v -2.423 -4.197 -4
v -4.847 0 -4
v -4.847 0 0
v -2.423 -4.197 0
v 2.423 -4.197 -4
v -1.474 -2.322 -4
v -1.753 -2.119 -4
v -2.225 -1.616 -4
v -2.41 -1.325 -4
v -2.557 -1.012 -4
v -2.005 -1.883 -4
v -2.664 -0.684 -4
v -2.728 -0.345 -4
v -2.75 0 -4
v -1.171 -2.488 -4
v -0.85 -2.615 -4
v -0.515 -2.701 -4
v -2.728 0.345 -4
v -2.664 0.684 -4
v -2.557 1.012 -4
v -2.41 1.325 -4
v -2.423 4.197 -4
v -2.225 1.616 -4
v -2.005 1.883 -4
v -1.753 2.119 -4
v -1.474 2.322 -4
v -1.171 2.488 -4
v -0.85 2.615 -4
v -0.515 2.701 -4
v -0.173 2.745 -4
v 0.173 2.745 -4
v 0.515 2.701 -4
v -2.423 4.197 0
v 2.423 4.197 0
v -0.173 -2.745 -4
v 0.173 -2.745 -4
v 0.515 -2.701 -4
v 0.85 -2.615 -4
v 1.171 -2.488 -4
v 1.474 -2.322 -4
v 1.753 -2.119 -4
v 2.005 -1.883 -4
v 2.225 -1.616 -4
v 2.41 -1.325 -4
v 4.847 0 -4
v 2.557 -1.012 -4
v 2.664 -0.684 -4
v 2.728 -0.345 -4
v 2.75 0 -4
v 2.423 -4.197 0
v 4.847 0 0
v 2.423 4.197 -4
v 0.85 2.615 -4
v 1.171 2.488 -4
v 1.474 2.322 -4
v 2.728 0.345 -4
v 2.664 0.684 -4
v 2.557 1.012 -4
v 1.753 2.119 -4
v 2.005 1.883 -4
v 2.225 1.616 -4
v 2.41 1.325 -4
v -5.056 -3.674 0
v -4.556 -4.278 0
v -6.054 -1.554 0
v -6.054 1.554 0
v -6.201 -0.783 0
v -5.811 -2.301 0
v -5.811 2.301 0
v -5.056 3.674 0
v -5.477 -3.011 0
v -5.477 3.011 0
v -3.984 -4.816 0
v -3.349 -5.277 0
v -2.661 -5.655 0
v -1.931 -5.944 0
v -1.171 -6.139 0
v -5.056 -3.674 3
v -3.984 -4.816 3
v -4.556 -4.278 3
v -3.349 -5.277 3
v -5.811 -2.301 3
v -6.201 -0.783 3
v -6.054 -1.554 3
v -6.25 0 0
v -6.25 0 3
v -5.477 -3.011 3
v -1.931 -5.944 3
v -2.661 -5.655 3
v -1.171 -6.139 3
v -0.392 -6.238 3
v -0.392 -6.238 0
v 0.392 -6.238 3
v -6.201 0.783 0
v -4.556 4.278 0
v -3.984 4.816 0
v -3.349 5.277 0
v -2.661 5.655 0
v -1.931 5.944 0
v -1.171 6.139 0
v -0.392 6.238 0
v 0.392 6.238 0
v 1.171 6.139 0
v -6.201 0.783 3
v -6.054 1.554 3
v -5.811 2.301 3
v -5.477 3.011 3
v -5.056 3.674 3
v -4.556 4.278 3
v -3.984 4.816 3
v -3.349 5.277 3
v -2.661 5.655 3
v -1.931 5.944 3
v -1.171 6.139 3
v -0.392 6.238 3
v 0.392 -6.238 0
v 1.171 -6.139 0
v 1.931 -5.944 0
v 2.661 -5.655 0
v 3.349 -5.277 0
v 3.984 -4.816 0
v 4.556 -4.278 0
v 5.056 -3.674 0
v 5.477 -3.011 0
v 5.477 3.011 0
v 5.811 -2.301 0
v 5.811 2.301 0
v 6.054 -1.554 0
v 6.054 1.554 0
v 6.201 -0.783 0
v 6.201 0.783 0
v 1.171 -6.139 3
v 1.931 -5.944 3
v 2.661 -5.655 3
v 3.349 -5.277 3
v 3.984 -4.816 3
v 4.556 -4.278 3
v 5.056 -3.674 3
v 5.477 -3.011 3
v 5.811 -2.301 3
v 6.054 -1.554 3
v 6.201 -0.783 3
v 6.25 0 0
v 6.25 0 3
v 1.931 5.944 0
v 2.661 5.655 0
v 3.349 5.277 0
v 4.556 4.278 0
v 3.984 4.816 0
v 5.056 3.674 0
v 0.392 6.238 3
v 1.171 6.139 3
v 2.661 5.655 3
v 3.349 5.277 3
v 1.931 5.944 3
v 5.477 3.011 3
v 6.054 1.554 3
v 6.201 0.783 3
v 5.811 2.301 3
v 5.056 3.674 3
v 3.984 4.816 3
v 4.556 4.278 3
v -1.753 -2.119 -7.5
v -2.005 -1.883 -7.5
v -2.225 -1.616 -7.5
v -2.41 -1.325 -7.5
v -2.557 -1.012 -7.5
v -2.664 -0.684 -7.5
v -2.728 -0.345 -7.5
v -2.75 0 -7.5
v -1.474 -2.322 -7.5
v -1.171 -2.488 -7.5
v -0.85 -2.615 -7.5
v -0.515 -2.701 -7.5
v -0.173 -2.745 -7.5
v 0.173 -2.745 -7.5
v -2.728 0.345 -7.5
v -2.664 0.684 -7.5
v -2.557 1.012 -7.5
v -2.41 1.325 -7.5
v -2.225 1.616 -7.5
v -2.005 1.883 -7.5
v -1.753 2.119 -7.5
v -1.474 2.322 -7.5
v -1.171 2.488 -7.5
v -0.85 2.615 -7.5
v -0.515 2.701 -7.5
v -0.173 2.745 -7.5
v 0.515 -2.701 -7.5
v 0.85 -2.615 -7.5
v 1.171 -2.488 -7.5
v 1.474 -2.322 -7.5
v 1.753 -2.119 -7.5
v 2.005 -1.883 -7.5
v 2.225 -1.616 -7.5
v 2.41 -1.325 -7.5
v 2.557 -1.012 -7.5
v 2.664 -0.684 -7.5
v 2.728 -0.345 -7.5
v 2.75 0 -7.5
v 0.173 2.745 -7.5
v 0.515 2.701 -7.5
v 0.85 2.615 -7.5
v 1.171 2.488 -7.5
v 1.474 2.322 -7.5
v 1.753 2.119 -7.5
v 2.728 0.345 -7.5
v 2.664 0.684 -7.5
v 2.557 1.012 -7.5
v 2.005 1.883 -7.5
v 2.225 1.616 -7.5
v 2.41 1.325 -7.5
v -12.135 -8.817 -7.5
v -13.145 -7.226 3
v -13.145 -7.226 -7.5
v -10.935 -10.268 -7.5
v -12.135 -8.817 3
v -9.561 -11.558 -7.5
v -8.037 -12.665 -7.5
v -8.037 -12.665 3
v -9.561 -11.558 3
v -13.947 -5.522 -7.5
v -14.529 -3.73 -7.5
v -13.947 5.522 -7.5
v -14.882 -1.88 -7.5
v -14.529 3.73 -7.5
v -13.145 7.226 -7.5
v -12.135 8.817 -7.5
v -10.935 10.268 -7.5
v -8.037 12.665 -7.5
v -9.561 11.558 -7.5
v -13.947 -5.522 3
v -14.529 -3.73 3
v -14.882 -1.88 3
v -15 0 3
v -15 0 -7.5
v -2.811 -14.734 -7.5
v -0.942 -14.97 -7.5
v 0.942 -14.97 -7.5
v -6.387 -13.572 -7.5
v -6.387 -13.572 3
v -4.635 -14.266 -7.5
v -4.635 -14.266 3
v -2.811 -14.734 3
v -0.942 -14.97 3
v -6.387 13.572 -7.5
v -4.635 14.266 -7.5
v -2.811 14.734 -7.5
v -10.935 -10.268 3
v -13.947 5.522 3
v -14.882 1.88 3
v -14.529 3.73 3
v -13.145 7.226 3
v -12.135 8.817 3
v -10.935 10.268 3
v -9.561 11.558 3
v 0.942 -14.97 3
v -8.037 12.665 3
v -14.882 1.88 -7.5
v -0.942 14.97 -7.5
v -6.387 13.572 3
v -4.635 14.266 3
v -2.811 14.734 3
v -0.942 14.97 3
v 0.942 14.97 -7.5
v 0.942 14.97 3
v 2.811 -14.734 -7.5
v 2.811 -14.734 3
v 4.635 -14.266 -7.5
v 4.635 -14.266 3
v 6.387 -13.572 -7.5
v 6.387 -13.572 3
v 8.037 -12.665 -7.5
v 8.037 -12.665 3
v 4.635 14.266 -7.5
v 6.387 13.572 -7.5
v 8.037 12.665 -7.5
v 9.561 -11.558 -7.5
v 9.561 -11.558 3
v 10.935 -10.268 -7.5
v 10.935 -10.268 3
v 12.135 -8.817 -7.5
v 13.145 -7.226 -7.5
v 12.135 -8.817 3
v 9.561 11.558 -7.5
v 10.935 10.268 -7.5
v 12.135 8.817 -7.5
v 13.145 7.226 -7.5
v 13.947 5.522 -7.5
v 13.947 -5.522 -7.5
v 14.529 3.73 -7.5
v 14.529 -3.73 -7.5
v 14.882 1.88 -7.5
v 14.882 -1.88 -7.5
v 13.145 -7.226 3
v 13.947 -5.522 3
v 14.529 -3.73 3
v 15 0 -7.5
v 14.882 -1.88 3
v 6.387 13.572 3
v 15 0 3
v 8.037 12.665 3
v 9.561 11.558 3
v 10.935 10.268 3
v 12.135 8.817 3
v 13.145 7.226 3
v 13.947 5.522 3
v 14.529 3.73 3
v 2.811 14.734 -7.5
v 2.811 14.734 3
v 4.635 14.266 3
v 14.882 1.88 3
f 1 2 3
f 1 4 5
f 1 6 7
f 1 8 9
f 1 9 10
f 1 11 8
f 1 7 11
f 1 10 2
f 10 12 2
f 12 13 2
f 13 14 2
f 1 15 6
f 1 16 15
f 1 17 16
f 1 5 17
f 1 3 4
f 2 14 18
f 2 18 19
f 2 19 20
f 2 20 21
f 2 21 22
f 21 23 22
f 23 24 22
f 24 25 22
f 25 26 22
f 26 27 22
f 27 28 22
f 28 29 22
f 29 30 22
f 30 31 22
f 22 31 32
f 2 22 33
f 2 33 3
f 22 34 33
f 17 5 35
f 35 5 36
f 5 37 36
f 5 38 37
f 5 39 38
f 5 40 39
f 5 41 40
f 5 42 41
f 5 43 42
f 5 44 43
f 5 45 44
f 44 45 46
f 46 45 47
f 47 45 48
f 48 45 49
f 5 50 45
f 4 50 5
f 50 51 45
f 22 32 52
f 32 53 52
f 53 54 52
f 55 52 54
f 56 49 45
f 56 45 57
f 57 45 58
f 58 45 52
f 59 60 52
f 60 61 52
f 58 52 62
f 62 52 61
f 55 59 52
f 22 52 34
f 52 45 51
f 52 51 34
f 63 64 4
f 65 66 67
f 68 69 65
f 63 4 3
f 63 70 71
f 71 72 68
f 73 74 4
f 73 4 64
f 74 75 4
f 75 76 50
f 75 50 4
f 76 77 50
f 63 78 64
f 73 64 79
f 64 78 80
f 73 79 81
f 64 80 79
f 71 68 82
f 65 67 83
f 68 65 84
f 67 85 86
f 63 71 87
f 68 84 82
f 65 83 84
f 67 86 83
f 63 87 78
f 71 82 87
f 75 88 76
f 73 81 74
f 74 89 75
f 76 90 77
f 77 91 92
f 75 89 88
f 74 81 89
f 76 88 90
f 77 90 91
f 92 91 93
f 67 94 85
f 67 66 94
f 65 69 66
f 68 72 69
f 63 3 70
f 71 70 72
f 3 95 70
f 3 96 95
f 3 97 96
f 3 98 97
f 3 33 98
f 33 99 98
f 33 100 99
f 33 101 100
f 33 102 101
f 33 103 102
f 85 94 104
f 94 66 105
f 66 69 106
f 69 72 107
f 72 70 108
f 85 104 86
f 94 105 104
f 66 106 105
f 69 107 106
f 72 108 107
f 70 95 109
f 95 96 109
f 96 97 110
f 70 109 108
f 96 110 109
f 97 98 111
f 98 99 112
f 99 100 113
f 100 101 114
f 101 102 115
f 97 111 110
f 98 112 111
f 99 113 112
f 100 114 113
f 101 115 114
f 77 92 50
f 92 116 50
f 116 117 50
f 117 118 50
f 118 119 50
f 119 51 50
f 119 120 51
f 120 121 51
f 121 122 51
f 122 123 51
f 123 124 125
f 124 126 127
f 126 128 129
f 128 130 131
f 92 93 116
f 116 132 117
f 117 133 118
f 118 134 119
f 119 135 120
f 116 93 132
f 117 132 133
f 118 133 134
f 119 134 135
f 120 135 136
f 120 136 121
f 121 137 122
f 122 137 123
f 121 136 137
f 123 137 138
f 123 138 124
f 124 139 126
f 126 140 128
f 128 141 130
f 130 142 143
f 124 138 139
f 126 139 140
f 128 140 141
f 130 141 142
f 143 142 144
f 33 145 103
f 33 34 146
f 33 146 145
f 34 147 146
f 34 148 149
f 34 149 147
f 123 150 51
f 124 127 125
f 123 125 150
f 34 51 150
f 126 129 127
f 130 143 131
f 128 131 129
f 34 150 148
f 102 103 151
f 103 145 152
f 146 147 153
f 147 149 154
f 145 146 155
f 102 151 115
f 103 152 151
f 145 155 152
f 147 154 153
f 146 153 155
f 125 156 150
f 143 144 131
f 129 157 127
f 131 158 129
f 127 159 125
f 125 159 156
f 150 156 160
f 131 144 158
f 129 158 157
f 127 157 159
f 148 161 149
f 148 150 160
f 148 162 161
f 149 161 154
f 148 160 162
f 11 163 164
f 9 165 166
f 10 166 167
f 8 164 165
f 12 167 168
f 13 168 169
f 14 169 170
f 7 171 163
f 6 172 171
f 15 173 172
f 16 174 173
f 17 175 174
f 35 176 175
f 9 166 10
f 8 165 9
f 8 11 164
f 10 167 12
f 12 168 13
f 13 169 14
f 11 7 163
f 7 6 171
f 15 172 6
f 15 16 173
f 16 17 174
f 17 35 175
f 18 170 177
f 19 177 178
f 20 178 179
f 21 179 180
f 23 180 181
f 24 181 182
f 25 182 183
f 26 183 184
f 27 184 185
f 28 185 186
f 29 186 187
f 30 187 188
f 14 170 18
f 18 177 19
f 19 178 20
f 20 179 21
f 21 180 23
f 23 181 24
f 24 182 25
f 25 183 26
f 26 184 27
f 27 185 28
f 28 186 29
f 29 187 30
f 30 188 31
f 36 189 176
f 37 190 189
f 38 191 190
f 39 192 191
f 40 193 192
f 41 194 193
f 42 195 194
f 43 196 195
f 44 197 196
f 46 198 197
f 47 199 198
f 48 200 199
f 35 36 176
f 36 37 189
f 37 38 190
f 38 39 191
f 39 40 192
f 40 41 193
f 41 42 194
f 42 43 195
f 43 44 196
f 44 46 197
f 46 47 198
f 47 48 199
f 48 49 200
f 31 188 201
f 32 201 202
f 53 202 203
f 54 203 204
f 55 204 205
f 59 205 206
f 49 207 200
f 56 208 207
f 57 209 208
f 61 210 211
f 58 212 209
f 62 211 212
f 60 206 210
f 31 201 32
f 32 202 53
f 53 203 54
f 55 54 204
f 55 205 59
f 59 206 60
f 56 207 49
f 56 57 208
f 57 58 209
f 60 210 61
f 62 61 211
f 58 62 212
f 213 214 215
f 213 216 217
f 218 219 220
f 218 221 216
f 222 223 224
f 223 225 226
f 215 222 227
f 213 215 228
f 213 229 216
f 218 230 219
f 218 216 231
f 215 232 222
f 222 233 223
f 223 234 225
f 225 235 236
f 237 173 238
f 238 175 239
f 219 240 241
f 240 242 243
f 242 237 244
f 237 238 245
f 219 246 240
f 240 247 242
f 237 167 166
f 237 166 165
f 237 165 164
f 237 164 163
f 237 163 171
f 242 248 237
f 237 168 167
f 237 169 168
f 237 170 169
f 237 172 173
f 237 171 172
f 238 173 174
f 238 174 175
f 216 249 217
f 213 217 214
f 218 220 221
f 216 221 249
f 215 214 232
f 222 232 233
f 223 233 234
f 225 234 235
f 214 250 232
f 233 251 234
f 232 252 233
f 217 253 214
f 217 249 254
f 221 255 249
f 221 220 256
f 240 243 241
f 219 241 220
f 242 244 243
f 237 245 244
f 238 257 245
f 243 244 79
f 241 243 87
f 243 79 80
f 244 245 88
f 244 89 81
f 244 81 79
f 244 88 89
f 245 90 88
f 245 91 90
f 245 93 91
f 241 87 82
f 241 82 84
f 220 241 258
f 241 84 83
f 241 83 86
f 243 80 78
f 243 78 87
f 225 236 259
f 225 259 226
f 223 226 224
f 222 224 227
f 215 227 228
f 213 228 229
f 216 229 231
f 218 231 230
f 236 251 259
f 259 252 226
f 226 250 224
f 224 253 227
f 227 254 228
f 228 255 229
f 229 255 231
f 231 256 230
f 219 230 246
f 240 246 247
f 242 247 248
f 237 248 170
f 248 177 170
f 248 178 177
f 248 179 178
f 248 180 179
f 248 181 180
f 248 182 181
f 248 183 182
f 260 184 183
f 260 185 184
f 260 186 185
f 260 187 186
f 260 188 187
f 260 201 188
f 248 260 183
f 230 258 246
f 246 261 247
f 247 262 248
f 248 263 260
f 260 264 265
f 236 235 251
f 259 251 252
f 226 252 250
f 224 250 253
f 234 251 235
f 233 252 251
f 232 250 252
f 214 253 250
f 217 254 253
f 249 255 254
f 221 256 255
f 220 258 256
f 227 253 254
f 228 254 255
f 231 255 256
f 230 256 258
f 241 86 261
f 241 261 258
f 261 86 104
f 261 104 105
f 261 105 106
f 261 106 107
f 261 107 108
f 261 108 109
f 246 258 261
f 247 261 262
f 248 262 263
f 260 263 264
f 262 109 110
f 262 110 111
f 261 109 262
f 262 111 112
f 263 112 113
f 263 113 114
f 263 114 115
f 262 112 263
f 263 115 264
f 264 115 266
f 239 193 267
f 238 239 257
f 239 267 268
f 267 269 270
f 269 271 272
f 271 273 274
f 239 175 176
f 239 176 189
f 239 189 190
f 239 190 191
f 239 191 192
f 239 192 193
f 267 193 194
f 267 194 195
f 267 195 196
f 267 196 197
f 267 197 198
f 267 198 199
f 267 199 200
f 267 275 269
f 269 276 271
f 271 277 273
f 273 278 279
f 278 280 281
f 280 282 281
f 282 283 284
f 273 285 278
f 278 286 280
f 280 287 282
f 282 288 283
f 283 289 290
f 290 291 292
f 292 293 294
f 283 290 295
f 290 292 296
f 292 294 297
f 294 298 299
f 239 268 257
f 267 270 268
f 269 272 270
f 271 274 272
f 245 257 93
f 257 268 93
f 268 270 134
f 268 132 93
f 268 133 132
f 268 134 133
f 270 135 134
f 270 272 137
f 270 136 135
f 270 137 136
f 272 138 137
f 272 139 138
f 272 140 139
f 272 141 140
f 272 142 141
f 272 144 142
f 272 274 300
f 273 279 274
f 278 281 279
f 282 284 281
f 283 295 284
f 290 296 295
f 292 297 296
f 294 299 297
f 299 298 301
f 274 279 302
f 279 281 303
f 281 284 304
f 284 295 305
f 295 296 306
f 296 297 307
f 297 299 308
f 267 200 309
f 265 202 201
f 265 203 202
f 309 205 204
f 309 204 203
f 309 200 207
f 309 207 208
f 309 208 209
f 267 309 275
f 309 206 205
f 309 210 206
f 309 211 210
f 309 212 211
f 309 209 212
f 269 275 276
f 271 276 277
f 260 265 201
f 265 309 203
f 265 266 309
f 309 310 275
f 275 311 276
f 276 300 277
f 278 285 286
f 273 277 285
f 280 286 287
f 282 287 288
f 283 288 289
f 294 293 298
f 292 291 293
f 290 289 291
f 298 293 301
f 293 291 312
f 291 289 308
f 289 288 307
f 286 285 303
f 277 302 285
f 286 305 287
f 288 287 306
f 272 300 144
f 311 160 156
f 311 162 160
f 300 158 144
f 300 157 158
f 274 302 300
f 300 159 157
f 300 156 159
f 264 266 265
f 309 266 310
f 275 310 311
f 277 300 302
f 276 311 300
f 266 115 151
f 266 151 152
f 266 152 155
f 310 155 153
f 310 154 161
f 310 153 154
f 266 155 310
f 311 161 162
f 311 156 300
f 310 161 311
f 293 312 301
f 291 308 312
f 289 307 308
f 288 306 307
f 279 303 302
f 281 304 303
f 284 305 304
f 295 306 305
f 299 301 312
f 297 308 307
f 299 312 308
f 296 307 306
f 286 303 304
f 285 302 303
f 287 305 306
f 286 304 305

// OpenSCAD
$fn = 50;

difference() {
	union() {
		translate(v = [0, 0, -7.5]) {
			cylinder(h = 10.5, r = 15.0);
		}
	}
	union() {
		translate(v = [0, 0, 0]) {
			rotate(a = [0, 0, 0]) {
				difference() {
					union() {
						translate(v = [0, 0, -4]) {
							linear_extrude(height = 4) {
								polygon(points = [[4.8468, 0.0], [2.4234000000000004, 4.197451927062417], [-2.423399999999999, 4.197451927062417], [-4.8468, 5.935618106107392e-16], [-2.423400000000002, -4.197451927062416], [2.423399999999997, -4.197451927062419]]);
							}
						}
					}
					union();
				}
			}
		}
		#cylinder(h = 3, r = 6.25);
		#translate(v = [0, 0, -100.0]) {
			cylinder(h = 200, r = 2.75);
		}
	}
}
